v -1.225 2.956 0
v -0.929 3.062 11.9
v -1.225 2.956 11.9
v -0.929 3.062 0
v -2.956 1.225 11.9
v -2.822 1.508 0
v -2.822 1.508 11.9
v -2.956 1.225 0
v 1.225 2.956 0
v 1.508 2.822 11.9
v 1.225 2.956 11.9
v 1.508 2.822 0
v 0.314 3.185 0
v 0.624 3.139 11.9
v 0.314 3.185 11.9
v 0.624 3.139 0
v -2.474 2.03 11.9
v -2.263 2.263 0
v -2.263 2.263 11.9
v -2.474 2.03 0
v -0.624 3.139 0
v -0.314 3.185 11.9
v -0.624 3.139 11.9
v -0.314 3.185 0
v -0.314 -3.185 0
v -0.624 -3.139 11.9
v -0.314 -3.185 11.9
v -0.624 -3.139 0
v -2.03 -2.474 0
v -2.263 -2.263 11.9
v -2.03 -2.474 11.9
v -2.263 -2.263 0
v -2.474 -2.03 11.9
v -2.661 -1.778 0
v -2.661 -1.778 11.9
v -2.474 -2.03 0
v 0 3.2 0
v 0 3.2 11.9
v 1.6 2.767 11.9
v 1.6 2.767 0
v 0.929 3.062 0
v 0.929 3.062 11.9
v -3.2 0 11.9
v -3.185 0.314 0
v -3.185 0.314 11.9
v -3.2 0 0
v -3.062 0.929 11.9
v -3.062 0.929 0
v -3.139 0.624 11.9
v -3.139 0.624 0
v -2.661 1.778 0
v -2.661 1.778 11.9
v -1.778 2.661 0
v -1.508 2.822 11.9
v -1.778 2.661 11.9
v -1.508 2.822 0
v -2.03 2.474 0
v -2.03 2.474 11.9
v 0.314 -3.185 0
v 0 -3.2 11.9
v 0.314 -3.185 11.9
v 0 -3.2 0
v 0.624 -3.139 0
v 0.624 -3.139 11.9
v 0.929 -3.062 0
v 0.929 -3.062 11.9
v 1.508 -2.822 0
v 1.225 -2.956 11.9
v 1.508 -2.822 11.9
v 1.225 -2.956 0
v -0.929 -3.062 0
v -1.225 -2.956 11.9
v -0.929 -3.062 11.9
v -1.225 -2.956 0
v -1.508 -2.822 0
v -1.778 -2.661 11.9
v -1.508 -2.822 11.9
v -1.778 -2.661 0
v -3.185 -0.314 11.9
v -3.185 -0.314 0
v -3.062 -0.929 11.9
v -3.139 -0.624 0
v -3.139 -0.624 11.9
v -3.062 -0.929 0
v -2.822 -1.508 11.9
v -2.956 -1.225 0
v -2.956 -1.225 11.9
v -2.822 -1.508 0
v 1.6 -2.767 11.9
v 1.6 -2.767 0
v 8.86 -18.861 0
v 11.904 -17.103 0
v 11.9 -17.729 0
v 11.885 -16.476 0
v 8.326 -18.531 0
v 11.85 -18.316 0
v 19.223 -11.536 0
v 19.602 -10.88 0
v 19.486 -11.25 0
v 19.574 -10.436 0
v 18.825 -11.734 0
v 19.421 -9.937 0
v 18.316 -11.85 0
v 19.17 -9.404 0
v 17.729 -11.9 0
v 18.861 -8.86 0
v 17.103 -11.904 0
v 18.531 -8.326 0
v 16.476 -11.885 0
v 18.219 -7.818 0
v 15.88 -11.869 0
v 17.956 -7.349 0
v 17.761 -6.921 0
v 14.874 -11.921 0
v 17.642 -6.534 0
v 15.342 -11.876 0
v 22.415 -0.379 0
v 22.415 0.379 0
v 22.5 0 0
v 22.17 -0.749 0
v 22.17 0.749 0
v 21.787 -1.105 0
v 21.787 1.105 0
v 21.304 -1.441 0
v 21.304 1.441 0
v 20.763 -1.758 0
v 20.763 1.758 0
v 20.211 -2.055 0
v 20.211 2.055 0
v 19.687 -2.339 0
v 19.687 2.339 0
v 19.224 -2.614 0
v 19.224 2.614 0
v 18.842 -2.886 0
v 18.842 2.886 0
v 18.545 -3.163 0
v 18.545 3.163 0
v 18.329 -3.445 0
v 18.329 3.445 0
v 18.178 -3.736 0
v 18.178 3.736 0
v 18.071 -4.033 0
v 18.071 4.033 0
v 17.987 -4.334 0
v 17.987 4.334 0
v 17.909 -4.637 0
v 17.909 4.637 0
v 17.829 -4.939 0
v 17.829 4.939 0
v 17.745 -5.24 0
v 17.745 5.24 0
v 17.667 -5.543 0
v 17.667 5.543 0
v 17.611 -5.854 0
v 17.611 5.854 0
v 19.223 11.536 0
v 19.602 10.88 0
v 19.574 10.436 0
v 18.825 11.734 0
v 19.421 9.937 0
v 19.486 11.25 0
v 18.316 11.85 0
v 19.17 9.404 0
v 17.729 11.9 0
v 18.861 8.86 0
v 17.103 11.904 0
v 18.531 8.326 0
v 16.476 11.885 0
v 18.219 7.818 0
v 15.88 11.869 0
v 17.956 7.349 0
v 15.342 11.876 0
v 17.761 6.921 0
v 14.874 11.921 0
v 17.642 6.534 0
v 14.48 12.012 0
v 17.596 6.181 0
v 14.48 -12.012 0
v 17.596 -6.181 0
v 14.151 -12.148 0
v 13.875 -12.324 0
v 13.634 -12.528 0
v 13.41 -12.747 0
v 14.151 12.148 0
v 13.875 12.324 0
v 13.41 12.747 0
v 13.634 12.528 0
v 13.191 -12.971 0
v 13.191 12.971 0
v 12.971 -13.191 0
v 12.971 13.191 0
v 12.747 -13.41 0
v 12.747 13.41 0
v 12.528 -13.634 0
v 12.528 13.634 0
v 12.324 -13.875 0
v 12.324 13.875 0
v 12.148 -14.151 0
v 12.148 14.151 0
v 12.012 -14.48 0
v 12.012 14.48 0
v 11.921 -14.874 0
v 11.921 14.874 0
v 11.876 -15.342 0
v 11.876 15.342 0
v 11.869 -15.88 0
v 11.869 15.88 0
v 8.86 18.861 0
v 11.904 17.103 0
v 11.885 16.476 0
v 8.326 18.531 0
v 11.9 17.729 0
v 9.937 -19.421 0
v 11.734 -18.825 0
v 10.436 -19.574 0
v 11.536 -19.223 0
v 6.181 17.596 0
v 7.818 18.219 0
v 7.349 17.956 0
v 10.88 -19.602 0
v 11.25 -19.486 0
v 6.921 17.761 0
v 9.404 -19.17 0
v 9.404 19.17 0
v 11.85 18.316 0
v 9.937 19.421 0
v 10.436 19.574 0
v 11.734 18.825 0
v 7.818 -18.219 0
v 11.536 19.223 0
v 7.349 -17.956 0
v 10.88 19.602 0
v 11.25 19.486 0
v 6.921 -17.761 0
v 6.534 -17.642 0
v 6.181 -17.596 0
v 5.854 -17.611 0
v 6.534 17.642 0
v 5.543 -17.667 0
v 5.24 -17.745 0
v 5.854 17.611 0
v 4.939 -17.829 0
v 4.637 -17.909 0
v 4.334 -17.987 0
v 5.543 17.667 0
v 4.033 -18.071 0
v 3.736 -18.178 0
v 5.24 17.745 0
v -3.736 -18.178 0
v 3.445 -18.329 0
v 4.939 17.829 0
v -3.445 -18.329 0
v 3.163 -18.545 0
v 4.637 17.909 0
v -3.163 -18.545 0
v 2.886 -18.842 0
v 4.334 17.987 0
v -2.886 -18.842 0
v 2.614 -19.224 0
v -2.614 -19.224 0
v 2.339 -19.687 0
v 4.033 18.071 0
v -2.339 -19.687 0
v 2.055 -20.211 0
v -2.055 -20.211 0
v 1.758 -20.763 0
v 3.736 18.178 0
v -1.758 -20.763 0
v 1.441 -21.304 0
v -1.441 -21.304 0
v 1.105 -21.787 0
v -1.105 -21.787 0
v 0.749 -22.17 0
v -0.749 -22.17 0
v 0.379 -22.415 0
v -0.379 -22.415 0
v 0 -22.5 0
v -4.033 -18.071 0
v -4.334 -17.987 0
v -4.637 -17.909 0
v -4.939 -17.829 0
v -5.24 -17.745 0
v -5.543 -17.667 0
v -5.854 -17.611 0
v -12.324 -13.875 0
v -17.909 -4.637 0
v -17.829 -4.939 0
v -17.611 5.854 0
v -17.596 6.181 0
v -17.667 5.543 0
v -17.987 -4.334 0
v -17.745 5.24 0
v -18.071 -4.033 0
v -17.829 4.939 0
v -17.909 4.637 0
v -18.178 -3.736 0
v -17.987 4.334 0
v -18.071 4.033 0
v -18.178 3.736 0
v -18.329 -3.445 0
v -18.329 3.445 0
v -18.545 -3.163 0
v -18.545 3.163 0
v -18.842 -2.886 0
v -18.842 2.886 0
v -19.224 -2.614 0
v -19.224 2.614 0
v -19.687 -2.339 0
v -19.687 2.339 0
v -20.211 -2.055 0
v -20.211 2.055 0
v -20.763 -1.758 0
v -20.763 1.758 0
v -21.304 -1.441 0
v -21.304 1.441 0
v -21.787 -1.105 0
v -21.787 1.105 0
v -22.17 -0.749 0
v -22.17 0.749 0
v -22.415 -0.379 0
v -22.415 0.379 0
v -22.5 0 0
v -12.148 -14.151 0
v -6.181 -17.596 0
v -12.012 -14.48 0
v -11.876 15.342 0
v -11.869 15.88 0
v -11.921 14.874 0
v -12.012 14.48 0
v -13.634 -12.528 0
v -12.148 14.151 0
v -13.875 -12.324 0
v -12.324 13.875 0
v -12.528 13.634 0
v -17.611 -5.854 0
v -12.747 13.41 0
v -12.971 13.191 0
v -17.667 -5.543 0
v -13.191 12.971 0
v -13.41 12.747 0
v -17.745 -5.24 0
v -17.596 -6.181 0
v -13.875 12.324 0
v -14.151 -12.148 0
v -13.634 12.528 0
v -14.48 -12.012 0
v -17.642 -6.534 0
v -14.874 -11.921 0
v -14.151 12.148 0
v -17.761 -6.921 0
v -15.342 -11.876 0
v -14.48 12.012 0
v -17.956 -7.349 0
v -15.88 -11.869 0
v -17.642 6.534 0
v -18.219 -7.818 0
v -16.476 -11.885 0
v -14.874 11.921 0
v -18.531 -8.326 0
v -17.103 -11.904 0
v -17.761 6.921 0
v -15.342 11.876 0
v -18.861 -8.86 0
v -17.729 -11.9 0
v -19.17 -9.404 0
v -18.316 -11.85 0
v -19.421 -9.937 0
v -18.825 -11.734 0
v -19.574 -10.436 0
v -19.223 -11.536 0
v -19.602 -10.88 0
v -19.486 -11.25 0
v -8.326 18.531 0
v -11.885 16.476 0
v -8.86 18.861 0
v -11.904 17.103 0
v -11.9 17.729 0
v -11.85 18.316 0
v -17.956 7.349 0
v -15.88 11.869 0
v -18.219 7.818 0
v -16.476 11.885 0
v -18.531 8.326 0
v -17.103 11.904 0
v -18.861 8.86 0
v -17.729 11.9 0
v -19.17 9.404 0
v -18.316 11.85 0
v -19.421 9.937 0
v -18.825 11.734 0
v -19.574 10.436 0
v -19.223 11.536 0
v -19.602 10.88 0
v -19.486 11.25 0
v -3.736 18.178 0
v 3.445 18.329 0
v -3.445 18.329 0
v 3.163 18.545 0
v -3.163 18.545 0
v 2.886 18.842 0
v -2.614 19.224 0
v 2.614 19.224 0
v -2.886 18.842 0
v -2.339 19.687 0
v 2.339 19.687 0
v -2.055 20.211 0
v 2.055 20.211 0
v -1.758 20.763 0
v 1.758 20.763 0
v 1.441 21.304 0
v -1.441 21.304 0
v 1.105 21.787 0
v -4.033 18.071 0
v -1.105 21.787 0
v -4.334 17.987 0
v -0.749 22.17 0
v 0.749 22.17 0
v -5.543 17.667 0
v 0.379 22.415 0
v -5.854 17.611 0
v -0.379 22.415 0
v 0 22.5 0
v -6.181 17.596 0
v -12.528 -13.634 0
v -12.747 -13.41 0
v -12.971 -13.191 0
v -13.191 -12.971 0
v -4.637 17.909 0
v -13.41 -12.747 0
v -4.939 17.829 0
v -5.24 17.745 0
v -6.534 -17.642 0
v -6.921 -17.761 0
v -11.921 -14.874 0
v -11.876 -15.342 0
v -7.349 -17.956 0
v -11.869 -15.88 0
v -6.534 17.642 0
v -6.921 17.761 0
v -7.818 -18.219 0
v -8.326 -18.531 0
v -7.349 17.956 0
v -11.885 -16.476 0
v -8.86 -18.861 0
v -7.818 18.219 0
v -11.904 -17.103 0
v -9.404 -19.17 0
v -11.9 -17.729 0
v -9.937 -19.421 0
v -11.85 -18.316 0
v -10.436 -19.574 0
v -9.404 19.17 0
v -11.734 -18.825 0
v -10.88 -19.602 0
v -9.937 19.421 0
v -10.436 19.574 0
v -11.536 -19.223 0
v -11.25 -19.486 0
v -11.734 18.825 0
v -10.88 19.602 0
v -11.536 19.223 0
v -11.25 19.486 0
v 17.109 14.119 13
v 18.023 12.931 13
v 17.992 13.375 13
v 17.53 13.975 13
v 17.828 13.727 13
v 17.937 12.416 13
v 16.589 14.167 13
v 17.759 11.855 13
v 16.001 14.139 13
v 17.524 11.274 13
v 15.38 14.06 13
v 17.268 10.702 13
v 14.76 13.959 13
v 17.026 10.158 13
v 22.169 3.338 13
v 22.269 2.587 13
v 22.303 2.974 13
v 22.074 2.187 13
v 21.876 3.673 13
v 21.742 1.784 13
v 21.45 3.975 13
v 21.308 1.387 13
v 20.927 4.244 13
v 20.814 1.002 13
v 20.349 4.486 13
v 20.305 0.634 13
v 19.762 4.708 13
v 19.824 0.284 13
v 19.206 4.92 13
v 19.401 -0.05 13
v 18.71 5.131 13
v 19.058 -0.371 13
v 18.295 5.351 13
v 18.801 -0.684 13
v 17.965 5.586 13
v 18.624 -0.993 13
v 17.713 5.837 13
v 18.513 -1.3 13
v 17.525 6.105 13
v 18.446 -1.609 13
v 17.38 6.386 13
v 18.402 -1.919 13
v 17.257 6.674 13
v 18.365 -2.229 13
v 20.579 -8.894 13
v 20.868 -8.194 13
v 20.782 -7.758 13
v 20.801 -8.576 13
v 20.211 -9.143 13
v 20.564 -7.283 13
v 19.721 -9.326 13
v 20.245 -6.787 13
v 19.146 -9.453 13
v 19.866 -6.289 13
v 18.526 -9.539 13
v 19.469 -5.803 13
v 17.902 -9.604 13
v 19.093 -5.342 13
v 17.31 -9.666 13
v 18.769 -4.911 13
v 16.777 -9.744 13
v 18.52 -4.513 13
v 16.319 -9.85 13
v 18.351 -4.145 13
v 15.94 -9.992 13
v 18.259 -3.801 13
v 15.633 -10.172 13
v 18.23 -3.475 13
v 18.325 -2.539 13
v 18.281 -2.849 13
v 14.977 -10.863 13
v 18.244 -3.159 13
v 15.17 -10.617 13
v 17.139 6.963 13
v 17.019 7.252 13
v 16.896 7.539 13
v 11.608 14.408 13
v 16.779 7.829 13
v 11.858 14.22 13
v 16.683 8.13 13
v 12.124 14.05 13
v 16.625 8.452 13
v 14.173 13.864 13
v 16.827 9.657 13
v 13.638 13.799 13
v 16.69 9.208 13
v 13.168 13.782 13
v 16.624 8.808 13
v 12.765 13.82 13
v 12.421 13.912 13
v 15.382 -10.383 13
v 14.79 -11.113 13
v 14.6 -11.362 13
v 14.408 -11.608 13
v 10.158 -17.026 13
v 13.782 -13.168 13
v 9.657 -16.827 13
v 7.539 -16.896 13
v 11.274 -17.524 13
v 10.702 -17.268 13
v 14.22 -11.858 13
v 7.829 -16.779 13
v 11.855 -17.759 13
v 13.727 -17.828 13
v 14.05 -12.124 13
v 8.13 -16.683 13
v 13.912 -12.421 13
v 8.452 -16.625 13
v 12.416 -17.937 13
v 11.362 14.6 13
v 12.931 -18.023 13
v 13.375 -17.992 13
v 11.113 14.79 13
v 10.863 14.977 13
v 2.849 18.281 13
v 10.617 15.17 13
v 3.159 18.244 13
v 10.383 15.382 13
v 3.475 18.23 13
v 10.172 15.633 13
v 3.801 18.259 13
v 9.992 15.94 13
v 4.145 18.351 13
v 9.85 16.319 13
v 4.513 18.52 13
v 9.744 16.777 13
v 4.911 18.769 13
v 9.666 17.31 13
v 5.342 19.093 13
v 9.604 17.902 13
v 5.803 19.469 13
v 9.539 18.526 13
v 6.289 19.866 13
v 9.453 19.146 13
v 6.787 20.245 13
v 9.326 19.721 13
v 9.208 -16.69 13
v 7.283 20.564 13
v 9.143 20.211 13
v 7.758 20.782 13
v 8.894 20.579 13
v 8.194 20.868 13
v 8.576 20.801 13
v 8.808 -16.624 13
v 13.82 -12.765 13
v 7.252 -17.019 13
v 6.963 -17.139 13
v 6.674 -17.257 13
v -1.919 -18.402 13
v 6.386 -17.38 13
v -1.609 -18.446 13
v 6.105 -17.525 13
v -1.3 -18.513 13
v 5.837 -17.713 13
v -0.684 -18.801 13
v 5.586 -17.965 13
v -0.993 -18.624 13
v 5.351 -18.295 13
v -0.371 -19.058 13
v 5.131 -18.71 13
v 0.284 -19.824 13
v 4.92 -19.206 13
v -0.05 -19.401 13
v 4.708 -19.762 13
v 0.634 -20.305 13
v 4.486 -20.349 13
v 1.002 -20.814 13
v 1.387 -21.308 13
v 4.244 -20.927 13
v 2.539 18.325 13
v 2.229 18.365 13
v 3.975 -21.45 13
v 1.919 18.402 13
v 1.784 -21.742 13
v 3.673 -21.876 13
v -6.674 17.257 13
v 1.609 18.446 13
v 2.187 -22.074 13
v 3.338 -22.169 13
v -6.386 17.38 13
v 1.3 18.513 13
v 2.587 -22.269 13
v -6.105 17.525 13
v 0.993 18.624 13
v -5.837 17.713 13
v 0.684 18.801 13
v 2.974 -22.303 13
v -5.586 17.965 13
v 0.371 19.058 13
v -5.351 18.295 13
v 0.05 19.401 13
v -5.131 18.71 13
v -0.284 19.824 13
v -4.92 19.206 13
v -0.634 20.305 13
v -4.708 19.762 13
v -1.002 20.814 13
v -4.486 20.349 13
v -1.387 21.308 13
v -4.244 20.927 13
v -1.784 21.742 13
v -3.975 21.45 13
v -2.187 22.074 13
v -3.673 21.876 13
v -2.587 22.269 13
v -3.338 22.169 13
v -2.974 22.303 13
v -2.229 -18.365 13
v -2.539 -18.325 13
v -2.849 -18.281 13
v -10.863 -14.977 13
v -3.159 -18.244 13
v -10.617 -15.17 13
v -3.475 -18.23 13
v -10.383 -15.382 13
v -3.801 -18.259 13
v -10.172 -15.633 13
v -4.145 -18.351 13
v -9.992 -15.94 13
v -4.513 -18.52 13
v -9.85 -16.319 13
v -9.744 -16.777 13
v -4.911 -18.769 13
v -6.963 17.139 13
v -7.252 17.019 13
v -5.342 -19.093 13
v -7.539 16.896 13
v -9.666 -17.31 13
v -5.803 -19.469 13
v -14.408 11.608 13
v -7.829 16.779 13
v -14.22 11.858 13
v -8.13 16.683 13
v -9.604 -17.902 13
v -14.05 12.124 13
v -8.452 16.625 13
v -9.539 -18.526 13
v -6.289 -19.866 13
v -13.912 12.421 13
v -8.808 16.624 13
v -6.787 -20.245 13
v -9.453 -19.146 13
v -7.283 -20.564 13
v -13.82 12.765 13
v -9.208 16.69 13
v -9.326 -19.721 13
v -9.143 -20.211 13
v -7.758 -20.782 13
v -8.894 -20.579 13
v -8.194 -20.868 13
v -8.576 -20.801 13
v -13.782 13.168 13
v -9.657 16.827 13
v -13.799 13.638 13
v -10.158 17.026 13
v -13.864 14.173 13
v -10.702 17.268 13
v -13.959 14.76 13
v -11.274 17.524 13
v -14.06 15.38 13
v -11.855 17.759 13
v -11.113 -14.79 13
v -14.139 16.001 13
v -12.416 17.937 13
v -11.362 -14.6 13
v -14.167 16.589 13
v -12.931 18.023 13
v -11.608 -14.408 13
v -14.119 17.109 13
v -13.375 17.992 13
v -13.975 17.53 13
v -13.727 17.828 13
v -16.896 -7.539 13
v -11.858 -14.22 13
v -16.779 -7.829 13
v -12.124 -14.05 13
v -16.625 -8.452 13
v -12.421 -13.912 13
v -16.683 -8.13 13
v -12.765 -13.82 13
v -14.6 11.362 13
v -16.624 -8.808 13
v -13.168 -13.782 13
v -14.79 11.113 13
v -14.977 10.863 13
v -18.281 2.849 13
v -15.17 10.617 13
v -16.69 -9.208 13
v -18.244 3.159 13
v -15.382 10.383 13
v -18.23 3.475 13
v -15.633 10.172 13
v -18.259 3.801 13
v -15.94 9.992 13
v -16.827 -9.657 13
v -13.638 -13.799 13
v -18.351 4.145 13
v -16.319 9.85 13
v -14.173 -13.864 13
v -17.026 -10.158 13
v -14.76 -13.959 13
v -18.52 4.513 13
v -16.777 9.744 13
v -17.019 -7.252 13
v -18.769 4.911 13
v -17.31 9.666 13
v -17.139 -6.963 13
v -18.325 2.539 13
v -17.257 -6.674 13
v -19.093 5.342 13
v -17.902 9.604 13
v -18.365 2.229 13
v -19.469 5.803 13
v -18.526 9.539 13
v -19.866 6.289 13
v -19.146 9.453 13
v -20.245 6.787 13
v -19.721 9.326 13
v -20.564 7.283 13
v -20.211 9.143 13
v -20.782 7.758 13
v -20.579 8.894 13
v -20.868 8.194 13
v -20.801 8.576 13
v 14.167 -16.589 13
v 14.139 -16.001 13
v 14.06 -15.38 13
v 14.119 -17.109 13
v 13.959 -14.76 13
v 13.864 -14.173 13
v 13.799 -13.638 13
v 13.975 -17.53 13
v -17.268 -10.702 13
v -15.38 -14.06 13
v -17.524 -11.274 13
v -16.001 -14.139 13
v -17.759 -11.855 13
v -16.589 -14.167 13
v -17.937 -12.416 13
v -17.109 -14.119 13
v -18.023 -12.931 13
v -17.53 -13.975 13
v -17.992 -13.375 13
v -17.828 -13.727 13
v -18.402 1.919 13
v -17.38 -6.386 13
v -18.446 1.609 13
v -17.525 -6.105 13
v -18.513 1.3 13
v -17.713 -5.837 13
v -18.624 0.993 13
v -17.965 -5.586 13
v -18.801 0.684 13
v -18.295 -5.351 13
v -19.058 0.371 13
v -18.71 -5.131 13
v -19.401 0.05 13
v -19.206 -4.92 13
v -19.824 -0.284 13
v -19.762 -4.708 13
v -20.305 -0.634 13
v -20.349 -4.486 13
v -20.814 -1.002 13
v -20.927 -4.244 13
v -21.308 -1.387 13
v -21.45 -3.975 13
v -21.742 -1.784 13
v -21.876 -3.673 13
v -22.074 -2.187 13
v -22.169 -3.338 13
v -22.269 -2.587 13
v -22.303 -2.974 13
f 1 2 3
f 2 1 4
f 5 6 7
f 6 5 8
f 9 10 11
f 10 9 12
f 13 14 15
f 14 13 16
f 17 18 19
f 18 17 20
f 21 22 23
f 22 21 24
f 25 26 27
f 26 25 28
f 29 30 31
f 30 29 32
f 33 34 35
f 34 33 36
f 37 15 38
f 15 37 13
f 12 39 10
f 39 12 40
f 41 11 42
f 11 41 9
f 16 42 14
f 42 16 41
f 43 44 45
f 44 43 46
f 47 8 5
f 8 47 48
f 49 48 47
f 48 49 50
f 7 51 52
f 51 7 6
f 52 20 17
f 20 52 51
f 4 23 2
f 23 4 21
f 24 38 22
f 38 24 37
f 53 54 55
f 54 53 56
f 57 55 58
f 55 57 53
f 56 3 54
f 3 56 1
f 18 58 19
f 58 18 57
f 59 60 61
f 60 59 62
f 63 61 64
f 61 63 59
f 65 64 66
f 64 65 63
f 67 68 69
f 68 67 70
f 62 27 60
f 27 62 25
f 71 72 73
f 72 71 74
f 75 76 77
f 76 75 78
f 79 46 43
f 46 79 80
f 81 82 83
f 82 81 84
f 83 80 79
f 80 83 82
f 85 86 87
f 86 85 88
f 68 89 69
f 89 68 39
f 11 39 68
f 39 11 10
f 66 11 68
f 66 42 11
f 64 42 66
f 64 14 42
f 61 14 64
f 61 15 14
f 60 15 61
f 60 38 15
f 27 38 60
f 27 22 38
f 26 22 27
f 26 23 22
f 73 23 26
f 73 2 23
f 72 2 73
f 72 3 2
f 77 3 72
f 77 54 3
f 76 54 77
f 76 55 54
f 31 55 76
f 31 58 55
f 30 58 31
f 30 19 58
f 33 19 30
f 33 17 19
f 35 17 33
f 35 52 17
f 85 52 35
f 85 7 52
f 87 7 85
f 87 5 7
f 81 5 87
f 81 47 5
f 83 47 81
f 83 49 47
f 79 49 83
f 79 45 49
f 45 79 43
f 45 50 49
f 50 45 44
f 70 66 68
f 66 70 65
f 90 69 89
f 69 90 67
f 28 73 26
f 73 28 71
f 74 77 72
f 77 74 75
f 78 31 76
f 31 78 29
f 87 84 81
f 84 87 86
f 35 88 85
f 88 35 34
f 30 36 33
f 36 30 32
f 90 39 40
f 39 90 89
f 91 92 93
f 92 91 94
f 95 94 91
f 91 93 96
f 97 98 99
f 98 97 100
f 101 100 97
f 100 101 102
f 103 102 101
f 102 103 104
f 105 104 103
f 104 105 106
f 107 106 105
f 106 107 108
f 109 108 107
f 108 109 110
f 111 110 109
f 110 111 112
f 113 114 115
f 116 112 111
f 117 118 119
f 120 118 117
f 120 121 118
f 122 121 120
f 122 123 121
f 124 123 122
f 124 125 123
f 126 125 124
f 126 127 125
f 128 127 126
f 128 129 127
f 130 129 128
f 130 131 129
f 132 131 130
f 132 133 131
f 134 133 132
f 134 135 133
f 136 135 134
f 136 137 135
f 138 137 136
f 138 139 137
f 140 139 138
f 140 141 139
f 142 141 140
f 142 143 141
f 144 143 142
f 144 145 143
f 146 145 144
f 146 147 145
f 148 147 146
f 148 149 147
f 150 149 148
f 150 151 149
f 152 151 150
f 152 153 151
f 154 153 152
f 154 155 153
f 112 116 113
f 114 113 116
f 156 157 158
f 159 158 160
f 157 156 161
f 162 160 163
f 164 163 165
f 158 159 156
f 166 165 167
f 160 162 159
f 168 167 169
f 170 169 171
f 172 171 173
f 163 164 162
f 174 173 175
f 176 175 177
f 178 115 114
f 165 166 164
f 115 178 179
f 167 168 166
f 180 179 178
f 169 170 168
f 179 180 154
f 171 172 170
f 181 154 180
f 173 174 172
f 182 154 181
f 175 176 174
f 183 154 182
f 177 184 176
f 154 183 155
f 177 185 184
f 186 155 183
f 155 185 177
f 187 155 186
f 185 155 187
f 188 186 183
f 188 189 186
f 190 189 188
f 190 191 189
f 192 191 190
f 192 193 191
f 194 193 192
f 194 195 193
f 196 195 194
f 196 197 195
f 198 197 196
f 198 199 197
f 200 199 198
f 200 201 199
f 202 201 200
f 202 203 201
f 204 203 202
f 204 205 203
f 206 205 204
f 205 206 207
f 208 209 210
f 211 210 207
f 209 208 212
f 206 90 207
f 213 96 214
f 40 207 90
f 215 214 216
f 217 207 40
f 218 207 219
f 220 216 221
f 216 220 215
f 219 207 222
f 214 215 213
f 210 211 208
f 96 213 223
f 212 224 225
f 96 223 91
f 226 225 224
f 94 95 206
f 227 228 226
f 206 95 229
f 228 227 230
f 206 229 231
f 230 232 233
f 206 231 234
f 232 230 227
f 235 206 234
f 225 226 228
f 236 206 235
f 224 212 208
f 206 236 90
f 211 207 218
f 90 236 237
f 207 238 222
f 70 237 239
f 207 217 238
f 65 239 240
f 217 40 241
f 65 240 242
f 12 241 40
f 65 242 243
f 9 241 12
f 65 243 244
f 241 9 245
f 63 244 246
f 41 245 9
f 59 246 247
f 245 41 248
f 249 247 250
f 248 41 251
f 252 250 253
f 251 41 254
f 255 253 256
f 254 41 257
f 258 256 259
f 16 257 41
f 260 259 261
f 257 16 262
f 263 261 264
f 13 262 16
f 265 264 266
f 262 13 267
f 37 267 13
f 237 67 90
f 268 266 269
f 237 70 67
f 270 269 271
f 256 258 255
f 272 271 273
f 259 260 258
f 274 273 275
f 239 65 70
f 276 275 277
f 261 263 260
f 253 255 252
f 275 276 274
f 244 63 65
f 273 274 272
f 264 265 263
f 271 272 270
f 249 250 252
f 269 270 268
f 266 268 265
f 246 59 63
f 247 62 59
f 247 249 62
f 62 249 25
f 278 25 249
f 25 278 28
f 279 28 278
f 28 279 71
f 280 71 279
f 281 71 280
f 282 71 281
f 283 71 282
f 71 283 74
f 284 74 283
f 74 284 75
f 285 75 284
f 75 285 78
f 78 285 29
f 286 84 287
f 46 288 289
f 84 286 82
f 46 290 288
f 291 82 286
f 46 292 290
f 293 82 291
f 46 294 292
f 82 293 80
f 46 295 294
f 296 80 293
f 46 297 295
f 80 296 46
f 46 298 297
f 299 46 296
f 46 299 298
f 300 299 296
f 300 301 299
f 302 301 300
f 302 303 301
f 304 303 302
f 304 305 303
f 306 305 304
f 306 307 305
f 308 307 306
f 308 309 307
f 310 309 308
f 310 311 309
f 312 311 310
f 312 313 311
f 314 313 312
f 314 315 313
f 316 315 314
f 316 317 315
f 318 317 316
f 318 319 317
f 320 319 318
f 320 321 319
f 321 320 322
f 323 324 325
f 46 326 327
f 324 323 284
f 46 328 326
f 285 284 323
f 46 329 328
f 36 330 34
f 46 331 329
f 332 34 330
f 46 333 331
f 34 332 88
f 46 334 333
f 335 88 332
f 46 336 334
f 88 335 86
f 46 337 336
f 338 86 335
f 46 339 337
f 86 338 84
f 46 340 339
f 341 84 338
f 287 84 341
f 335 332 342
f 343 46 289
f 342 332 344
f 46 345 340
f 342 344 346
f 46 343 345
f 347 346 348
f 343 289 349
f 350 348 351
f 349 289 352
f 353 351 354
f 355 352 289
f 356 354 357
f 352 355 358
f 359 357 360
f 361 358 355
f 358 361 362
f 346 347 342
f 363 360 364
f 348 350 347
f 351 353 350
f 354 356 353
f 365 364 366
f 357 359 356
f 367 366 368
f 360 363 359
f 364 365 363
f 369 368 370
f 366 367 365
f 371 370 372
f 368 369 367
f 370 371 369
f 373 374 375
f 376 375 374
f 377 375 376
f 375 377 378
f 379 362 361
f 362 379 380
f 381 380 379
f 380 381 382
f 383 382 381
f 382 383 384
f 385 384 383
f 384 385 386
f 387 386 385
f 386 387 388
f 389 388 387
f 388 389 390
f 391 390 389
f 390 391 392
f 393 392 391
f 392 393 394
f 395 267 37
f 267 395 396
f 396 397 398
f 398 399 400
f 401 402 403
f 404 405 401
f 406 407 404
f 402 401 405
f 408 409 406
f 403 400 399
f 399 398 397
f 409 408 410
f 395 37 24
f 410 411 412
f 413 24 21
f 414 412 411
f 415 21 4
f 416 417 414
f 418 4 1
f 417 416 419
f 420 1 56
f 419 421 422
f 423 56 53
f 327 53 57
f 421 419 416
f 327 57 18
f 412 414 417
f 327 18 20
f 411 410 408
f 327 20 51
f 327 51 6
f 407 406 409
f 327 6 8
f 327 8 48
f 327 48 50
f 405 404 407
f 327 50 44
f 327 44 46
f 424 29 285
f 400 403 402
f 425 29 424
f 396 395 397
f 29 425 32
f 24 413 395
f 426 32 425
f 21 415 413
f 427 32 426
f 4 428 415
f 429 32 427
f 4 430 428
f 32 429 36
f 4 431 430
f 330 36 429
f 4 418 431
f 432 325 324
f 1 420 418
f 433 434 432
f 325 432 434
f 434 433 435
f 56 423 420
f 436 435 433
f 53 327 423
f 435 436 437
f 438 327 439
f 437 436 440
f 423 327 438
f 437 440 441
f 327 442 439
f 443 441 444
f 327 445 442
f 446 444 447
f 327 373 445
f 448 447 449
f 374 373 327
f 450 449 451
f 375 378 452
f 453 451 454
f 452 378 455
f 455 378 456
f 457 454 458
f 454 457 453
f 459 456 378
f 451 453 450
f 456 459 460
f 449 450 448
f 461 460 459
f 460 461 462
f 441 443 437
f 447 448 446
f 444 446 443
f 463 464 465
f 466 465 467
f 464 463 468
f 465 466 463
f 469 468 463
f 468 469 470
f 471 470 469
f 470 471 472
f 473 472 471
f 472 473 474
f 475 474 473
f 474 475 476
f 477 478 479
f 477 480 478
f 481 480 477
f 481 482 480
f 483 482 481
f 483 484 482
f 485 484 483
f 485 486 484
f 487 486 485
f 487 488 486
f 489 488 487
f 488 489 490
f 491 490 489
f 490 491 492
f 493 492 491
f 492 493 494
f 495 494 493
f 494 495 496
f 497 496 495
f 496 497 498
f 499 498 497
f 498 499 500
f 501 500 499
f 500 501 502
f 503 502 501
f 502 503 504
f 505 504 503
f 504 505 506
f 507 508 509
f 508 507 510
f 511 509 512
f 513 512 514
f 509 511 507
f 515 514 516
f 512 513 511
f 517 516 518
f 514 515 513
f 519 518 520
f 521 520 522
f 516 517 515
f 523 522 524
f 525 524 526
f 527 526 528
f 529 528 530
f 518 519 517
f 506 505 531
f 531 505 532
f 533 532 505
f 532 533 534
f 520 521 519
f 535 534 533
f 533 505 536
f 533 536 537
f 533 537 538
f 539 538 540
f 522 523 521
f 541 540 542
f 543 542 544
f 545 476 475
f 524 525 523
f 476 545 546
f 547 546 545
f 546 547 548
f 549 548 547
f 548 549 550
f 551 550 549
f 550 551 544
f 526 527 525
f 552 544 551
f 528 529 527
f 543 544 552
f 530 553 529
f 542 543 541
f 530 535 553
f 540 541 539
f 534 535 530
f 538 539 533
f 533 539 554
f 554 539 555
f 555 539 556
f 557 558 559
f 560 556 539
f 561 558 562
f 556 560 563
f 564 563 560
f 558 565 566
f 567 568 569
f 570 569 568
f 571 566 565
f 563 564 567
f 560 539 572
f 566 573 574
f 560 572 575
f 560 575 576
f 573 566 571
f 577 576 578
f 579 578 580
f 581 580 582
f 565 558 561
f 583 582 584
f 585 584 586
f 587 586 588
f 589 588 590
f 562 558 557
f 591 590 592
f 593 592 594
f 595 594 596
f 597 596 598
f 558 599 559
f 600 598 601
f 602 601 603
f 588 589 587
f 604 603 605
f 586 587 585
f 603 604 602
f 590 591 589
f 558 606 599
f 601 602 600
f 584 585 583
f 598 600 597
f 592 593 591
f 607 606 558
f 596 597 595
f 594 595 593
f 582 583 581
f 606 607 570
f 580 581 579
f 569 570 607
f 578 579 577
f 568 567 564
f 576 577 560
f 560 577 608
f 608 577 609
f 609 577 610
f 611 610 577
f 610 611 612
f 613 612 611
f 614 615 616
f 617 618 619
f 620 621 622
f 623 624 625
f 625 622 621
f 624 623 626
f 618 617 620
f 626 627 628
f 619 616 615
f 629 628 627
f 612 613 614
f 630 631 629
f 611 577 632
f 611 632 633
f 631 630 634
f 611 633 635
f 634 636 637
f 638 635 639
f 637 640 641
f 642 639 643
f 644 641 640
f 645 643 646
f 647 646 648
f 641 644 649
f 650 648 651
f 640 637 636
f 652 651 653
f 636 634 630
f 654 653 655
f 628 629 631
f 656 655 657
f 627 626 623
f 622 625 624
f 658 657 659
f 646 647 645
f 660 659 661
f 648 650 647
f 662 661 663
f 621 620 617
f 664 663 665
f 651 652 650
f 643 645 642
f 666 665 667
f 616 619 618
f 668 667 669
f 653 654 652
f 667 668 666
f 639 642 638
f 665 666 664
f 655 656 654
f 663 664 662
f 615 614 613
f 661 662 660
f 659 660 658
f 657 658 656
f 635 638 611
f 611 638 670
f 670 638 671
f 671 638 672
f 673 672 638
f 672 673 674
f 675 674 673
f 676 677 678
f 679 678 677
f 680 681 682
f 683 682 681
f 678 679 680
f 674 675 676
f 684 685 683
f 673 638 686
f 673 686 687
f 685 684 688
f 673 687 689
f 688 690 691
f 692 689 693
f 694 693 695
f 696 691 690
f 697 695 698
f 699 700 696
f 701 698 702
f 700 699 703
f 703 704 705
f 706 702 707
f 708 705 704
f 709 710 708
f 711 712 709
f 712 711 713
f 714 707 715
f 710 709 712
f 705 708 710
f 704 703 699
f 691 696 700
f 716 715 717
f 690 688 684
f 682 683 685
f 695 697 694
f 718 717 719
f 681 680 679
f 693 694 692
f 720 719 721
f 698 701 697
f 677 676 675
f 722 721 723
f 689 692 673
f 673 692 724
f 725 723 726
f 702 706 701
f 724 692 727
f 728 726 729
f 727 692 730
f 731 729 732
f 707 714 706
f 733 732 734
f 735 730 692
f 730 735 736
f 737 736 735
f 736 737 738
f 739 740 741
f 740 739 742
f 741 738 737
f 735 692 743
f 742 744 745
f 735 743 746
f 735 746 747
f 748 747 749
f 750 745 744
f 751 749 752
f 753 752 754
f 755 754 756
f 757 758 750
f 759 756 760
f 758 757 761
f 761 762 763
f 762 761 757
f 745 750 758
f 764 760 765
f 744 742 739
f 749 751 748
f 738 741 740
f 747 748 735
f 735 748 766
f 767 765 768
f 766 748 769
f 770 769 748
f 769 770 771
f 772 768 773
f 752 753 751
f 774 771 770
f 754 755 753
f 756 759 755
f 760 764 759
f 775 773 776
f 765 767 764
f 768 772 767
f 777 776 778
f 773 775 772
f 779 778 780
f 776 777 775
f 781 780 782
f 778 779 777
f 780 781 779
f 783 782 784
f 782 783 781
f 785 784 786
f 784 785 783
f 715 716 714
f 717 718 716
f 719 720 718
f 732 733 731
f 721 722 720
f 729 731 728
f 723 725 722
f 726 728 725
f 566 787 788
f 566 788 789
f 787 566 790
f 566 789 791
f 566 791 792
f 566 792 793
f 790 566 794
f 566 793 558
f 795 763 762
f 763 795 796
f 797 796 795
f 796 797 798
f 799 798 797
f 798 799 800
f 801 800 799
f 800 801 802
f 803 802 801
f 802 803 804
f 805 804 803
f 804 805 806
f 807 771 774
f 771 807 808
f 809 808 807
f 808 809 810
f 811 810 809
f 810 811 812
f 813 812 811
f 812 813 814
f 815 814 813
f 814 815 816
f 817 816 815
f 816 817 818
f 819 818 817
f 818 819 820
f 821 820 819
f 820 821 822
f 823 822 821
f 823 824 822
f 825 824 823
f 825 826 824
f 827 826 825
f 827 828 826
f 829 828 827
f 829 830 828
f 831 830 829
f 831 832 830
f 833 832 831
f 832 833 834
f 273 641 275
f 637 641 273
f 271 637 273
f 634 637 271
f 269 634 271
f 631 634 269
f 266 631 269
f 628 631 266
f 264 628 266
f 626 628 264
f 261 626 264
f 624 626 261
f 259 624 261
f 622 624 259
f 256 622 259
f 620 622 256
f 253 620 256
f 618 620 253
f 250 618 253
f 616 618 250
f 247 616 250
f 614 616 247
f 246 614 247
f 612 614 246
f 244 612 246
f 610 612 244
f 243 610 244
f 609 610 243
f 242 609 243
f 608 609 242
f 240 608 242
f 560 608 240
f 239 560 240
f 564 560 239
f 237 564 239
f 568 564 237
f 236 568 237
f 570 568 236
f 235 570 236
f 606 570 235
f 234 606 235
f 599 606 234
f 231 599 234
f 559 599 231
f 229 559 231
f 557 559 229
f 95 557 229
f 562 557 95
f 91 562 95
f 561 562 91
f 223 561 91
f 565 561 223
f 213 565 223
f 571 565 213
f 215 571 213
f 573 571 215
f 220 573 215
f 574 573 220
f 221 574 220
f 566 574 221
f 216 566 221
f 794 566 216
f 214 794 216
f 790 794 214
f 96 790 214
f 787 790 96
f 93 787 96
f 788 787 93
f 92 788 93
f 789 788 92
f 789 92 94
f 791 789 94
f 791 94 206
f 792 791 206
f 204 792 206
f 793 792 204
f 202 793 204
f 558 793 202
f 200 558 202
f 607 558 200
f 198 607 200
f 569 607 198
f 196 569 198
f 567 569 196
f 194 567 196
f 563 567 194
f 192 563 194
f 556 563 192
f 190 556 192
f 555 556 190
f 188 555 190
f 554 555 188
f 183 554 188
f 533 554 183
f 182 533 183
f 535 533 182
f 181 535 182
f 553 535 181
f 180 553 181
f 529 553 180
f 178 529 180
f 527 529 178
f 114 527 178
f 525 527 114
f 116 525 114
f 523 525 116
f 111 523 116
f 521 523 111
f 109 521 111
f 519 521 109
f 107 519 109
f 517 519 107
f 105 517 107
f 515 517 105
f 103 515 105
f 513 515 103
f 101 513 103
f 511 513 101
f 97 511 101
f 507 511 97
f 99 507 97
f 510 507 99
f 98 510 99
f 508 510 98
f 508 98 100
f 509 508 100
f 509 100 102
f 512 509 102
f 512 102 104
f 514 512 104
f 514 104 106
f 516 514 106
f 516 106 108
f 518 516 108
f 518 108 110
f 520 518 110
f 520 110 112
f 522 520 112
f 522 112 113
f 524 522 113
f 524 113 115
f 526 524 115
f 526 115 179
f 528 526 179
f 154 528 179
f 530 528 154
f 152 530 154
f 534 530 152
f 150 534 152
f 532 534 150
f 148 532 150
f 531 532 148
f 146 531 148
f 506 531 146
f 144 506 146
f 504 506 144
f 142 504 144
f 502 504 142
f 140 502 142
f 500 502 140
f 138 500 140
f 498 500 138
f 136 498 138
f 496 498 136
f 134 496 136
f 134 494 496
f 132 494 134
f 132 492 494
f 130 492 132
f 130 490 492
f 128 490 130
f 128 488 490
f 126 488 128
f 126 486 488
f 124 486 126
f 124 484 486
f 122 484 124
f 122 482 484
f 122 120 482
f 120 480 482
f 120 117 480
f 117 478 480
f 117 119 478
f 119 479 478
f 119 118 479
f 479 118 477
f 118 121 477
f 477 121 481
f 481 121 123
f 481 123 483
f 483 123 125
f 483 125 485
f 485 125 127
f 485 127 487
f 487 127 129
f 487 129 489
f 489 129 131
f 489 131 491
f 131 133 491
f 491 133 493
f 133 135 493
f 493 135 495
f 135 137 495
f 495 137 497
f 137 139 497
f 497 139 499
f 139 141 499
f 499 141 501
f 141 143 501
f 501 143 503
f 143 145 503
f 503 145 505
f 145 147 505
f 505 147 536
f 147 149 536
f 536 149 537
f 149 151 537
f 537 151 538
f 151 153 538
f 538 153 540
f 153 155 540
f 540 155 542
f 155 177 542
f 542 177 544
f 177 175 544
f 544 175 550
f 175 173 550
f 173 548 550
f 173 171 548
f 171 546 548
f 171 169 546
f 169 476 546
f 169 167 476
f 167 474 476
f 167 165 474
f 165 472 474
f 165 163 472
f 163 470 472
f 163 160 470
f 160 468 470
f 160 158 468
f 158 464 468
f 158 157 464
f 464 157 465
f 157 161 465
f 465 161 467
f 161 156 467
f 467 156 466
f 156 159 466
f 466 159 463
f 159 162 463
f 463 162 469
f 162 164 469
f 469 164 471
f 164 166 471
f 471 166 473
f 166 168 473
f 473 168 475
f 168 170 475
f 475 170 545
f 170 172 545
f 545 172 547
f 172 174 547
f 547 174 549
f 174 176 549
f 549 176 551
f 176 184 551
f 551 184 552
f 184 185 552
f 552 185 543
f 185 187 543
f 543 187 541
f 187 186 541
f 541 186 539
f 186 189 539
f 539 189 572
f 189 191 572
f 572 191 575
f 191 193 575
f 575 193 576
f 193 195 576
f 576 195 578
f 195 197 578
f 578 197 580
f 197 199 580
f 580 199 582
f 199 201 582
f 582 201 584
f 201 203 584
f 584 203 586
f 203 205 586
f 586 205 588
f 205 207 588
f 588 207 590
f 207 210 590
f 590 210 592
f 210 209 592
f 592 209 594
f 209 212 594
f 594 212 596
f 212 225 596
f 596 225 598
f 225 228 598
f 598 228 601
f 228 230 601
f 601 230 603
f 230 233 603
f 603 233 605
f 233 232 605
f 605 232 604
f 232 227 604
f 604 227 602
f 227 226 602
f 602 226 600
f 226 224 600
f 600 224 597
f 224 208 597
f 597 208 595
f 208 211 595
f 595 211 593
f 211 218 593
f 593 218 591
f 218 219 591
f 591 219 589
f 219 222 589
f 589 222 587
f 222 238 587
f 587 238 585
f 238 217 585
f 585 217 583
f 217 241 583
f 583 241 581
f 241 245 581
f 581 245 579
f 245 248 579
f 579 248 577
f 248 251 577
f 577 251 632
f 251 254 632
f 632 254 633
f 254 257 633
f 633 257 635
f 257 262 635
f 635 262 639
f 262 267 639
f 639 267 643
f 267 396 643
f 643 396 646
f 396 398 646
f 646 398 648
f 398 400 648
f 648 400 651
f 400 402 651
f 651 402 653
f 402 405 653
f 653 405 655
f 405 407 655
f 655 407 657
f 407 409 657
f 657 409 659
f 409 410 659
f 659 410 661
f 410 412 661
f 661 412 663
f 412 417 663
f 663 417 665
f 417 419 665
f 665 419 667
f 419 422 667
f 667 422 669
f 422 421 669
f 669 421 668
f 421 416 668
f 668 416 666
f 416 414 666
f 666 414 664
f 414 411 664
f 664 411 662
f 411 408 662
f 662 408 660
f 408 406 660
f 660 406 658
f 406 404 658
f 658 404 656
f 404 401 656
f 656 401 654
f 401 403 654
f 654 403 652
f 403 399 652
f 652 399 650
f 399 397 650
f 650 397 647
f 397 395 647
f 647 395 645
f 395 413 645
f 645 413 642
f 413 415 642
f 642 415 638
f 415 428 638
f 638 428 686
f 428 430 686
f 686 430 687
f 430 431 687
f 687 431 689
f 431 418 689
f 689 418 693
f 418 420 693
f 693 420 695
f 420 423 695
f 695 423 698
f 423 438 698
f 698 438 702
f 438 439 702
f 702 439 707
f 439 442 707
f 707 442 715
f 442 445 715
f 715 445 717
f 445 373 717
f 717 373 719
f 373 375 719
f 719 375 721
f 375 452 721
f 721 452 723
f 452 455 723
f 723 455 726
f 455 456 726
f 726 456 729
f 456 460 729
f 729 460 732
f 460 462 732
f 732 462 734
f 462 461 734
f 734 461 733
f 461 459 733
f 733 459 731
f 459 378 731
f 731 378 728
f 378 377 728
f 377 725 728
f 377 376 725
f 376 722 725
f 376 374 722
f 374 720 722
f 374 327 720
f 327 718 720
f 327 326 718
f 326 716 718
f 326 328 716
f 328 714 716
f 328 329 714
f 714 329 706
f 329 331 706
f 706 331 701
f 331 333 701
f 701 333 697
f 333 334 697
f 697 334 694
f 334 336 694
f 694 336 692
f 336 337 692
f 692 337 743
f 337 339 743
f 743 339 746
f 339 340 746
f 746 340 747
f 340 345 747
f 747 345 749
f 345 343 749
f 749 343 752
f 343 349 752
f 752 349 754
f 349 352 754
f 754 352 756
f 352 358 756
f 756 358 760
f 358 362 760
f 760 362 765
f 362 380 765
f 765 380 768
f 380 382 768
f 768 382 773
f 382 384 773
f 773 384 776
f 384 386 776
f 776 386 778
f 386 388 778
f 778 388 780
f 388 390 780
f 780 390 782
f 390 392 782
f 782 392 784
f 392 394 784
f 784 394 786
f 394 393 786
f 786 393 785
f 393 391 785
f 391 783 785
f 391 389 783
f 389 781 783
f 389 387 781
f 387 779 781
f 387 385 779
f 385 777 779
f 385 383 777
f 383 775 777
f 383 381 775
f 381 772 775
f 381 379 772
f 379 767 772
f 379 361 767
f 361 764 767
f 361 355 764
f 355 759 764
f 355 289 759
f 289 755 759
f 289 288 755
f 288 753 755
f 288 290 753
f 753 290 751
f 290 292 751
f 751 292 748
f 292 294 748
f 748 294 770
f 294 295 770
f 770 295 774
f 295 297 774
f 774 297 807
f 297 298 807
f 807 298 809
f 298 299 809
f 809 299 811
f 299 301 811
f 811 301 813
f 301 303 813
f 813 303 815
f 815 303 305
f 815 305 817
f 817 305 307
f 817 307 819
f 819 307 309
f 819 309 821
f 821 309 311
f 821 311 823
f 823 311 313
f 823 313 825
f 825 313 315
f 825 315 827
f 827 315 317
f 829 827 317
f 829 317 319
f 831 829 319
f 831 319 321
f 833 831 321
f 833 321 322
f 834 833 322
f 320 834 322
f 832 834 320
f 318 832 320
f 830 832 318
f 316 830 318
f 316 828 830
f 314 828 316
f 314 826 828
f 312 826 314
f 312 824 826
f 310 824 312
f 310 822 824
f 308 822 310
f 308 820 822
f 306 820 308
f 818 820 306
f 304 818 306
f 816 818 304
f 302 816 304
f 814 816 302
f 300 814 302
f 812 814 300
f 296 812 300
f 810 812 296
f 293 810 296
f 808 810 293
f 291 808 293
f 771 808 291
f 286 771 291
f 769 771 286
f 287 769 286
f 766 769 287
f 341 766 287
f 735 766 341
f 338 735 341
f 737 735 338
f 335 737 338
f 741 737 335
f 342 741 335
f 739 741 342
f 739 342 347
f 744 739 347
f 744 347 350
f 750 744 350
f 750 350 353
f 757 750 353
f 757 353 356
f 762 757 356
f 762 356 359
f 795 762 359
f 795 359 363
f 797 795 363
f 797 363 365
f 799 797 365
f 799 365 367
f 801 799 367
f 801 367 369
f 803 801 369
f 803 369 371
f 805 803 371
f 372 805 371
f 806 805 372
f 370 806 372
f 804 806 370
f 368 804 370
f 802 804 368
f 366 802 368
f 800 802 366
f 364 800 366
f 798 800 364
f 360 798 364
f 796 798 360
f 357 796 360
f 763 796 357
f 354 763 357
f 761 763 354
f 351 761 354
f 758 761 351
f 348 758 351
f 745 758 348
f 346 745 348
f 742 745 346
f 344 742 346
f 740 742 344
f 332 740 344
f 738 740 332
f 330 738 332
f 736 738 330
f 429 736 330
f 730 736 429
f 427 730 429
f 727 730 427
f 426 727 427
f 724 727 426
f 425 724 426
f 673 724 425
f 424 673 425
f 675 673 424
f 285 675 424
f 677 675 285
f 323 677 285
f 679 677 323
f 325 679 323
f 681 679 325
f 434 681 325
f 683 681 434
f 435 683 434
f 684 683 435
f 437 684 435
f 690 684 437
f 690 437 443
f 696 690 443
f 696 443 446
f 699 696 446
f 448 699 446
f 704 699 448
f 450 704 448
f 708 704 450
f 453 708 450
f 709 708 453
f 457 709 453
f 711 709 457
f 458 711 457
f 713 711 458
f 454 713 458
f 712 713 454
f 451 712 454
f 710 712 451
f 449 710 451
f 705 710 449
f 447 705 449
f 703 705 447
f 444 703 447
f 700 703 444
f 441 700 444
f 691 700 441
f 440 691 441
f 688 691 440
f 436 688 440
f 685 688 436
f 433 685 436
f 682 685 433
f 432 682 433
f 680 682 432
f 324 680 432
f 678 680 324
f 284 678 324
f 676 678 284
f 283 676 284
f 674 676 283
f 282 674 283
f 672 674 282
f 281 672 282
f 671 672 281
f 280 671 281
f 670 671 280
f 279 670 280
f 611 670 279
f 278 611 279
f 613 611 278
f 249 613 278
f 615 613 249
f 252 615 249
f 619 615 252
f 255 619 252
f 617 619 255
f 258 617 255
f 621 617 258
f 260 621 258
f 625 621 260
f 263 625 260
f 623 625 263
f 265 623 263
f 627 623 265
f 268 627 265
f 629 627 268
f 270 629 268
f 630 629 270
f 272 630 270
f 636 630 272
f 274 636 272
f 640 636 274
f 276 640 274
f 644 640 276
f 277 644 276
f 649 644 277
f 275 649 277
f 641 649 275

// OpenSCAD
// Generated by SolidPython 1.1.3 on 2025-03-09 02:48:33
$fn = 64;


difference() {
	linear_extrude(height = 13, slices = 1, twist = -7.594643368591445) {
		polygon(points = [[22.5, 0.0], [22.415341065327294, 0.378637462806787], [22.169743822900962, 0.7491914939374684], [21.787179882375174, 1.104920710189909], [21.303895724438366, 1.441509245485037], [20.763467316603133, 1.7576848191183598], [20.211000561583514, 2.055257876010524], [19.687376909516843, 2.3385846228618474], [19.224421894018707, 2.613573046688757], [18.841710342190282, 2.8864438558941576], [18.545443606454974, 3.162508801932647], [18.329488271805218, 3.4452262454452365], [18.17831024735917, 3.735737721122576], [18.07123202182097, 4.032989845661785], [17.98723455715507, 4.334422233481712], [17.909452182534345, 4.6370784449241], [17.82857978039945, 4.93889835862166], [17.74461318706648, 5.2398975136542845], [17.666640931410672, 5.542944351362693], [17.610747332649314, 5.853911355311648], [17.596415604474863, 6.18109068556215], [17.64207968860803, 6.533908841061924], [17.76062173503185, 6.92112146529329], [17.955624256634334, 7.3487902939305965], [18.21906084895168, 7.81841476246041], [18.530868860238144, 8.325594748838594], [18.860532576385403, 8.859533953098808], [19.170469519680832, 9.403564235839001], [19.420711610053115, 9.936700536995582], [19.574157092994106, 10.436053045401417], [19.601573528469373, 10.87976087104848], [19.48557158514987, 11.249999999999998], [19.48557158514987, 11.249999999999998], [19.222936065662584, 11.535580194278808], [18.82496559905664, 11.733690777499543], [18.315790899863206, 11.85047934537959], [17.728960274195796, 11.900331488599361], [17.102847757267043, 11.903933363504324], [16.475610984227618, 11.885405812744919], [15.880476226089835, 11.868962147056433], [15.342051209945577, 11.87563160008811], [14.874177879137696, 11.920588876896991], [14.479570886675385, 12.011534765393048], [14.151189359029628, 12.148397586243064], [13.875009611526737, 12.324398892047526], [13.63365108574889, 12.52828767045827], [13.41019095358477, 12.747337043500782], [13.191501335475353, 12.970553823912683], [12.970553823912685, 13.191501335475351], [12.747337043500783, 13.410190953584767], [12.528287670458274, 13.633651085748886], [12.324398892047528, 13.875009611526735], [12.148397586243068, 14.151189359029626], [12.011534765393051, 14.47957088667538], [11.920588876896993, 14.874177879137694], [11.875631600088111, 15.342051209945573], [11.868962147056434, 15.880476226089833], [11.88540581274492, 16.475610984227615], [11.903933363504324, 17.10284775726704], [11.900331488599365, 17.728960274195796], [11.850479345379593, 18.315790899863202], [11.733690777499548, 18.824965599056636], [11.535580194278811, 19.222936065662584], [11.250000000000002, 19.48557158514987], [11.250000000000002, 19.48557158514987], [10.879760871048488, 19.60157352846937], [10.43605304540142, 19.574157092994106], [9.936700536995586, 19.42071161005311], [9.403564235839006, 19.17046951968083], [8.859533953098817, 18.8605325763854], [8.325594748838599, 18.53086886023814], [7.8184147624604154, 18.21906084895168], [7.348790293930602, 17.95562425663433], [6.921121465293298, 17.76062173503185], [6.533908841061925, 17.642079688608028], [6.181090685562152, 17.596415604474863], [5.85391135531165, 17.610747332649314], [5.542944351362695, 17.666640931410672], [5.239897513654286, 17.74461318706648], [4.938898358621664, 17.82857978039945], [4.637078444924105, 17.909452182534345], [4.334422233481715, 17.987234557155066], [4.032989845661789, 18.071232021820965], [3.7357377211225815, 18.17831024735917], [3.4452262454452427, 18.329488271805214], [3.1625088019326504, 18.545443606454974], [2.886443855894159, 18.841710342190282], [2.6135730466887592, 19.224421894018707], [2.338584622861847, 19.687376909516843], [2.055257876010525, 20.211000561583514], [1.7576848191183623, 20.76346731660313], [1.4415092454850411, 21.303895724438366], [1.1049207101899103, 21.787179882375174], [0.7491914939374713, 22.169743822900962], [0.3786374628067917, 22.415341065327294], [1.3777276490407724e-15, 22.5], [1.3777276490407724e-15, 22.5], [-0.378637462806784, 22.415341065327294], [-0.7491914939374636, 22.169743822900962], [-1.1049207101899028, 21.787179882375177], [-1.4415092454850336, 21.303895724438366], [-1.7576848191183552, 20.763467316603133], [-2.055257876010518, 20.211000561583514], [-2.3385846228618403, 19.687376909516846], [-2.6135730466887526, 19.224421894018707], [-2.8864438558941528, 18.841710342190286], [-3.162508801932644, 18.545443606454974], [-3.4452262454452365, 18.329488271805218], [-3.7357377211225753, 18.17831024735917], [-4.032989845661782, 18.07123202182097], [-4.334422233481709, 17.98723455715507], [-4.637078444924099, 17.909452182534345], [-4.938898358621658, 17.828579780399455], [-5.23989751365428, 17.744613187066484], [-5.542944351362689, 17.666640931410676], [-5.853911355311644, 17.610747332649314], [-6.181090685562148, 17.596415604474867], [-6.533908841061919, 17.64207968860803], [-6.921121465293291, 17.76062173503185], [-7.3487902939305965, 17.955624256634334], [-7.818414762460408, 18.219060848951685], [-8.325594748838592, 18.530868860238144], [-8.859533953098804, 18.860532576385403], [-9.403564235838996, 19.170469519680832], [-9.936700536995582, 19.420711610053115], [-10.436053045401417, 19.57415709299411], [-10.87976087104848, 19.601573528469373], [-11.249999999999995, 19.48557158514987], [-11.249999999999995, 19.48557158514987], [-11.535580194278804, 19.222936065662587], [-11.733690777499538, 18.824965599056643], [-11.850479345379583, 18.31579089986321], [-11.900331488599361, 17.728960274195796], [-11.903933363504319, 17.102847757267046], [-11.885405812744917, 16.47561098422762], [-11.868962147056427, 15.88047622608984], [-11.875631600088104, 15.34205120994558], [-11.920588876896984, 14.874177879137699], [-12.011534765393042, 14.479570886675388], [-12.148397586243055, 14.151189359029635], [-12.324398892047522, 13.87500961152674], [-12.528287670458266, 13.633651085748891], [-12.747337043500774, 13.410190953584774], [-12.970553823912683, 13.191501335475351], [-13.191501335475344, 12.97055382391269], [-13.410190953584765, 12.747337043500785], [-13.633651085748879, 12.528287670458283], [-13.875009611526737, 12.324398892047524], [-14.151189359029628, 12.148397586243066], [-14.479570886675383, 12.01153476539305], [-14.874177879137694, 11.920588876896995], [-15.342051209945572, 11.875631600088113], [-15.880476226089831, 11.868962147056438], [-16.475610984227615, 11.885405812744926], [-17.10284775726704, 11.903933363504322], [-17.728960274195792, 11.900331488599365], [-18.315790899863202, 11.850479345379595], [-18.824965599056636, 11.733690777499548], [-19.22293606566258, 11.535580194278817], [-19.485571585149867, 11.250000000000007], [-19.485571585149867, 11.250000000000007], [-19.601573528469366, 10.879760871048493], [-19.574157092994106, 10.43605304540142], [-19.42071161005311, 9.936700536995586], [-19.17046951968083, 9.403564235839008], [-18.8605325763854, 8.859533953098817], [-18.53086886023814, 8.325594748838604], [-18.219060848951678, 7.818414762460421], [-17.95562425663433, 7.348790293930607], [-17.760621735031847, 6.921121465293302], [-17.642079688608028, 6.533908841061931], [-17.596415604474863, 6.1810906855621575], [-17.610747332649314, 5.853911355311656], [-17.66664093141067, 5.542944351362704], [-17.744613187066477, 5.239897513654295], [-17.82857978039945, 4.938898358621665], [-17.90945218253434, 4.637078444924114], [-17.98723455715507, 4.334422233481711], [-18.071232021820965, 4.032989845661794], [-18.17831024735917, 3.735737721122579], [-18.329488271805214, 3.4452262454452396], [-18.545443606454974, 3.1625088019326513], [-18.841710342190282, 2.8864438558941643], [-19.224421894018707, 2.6135730466887646], [-19.687376909516843, 2.3385846228618483], [-20.211000561583514, 2.0552578760105265], [-20.76346731660313, 1.7576848191183636], [-21.303895724438366, 1.4415092454850424], [-21.787179882375174, 1.1049207101899163], [-22.169743822900962, 0.7491914939374776], [-22.415341065327294, 0.37863746280679805], [-22.5, 2.7554552980815448e-15], [-22.5, 2.7554552980815448e-15], [-22.415341065327294, -0.3786374628067826], [-22.169743822900962, -0.7491914939374622], [-21.787179882375177, -1.1049207101899015], [-21.303895724438366, -1.4415092454850278], [-20.763467316603133, -1.7576848191183494], [-20.211000561583514, -2.0552578760105122], [-19.687376909516846, -2.338584622861835], [-19.224421894018707, -2.6135730466887517], [-18.841710342190286, -2.886443855894151], [-18.545443606454974, -3.162508801932639], [-18.329488271805218, -3.445226245445227], [-18.178310247359175, -3.735737721122566], [-18.07123202182097, -4.032989845661773], [-17.98723455715507, -4.334422233481699], [-17.909452182534345, -4.637078444924102], [-17.828579780399455, -4.938898358621652], [-17.74461318706648, -5.239897513654283], [-17.666640931410676, -5.542944351362684], [-17.610747332649318, -5.853911355311643], [-17.596415604474867, -6.181090685562145], [-17.64207968860803, -6.533908841061918], [-17.760621735031854, -6.92112146529329], [-17.955624256634334, -7.348790293930596], [-18.219060848951685, -7.8184147624604075], [-18.530868860238144, -8.32559474883859], [-18.860532576385406, -8.859533953098802], [-19.170469519680832, -9.403564235838994], [-19.420711610053118, -9.936700536995573], [-19.574157092994113, -10.436053045401408], [-19.601573528469373, -10.879760871048479], [-19.485571585149874, -11.249999999999993], [-19.485571585149874, -11.249999999999993], [-19.222936065662587, -11.5355801942788], [-18.824965599056643, -11.733690777499536], [-18.31579089986321, -11.850479345379583], [-17.728960274195803, -11.900331488599353], [-17.102847757267053, -11.903933363504311], [-16.47561098422762, -11.885405812744914], [-15.88047622608984, -11.868962147056427], [-15.34205120994558, -11.875631600088102], [-14.8741778791377, -11.920588876896984], [-14.479570886675388, -12.011534765393039], [-14.151189359029635, -12.148397586243055], [-13.875009611526748, -12.324398892047514], [-13.633651085748893, -12.528287670458266], [-13.410190953584774, -12.747337043500774], [-13.191501335475353, -12.970553823912683], [-12.970553823912693, -13.191501335475342], [-12.747337043500785, -13.410190953584765], [-12.528287670458283, -13.633651085748879], [-12.32439889204753, -13.875009611526734], [-12.148397586243073, -14.151189359029622], [-12.011534765393058, -14.479570886675376], [-11.920588876897002, -14.874177879137687], [-11.875631600088122, -15.342051209945566], [-11.868962147056433, -15.880476226089836], [-11.885405812744919, -16.475610984227618], [-11.903933363504322, -17.10284775726704], [-11.900331488599367, -17.728960274195792], [-11.850479345379595, -18.315790899863202], [-11.73369077749955, -18.824965599056636], [-11.535580194278817, -19.22293606566258], [-11.25000000000001, -19.485571585149867], [-11.25000000000001, -19.485571585149867], [-10.879760871048475, -19.601573528469377], [-10.436053045401431, -19.5741570929941], [-9.936700536995579, -19.420711610053115], [-9.403564235839017, -19.170469519680825], [-8.859533953098811, -18.860532576385403], [-8.325594748838613, -18.530868860238133], [-7.818414762460413, -18.21906084895168], [-7.348790293930601, -17.95562425663433], [-6.921121465293296, -17.76062173503185], [-6.5339088410619315, -17.642079688608025], [-6.181090685562158, -17.596415604474863], [-5.853911355311657, -17.61074733264931], [-5.542944351362705, -17.66664093141067], [-5.239897513654296, -17.744613187066477], [-4.938898358621658, -17.828579780399455], [-4.637078444924115, -17.90945218253434], [-4.334422233481713, -17.98723455715507], [-4.0329898456618025, -18.071232021820965], [-3.73573772112258, -18.17831024735917], [-3.4452262454452574, -18.329488271805214], [-3.1625088019326526, -18.545443606454974], [-2.886443855894182, -18.84171034219028], [-2.613573046688766, -19.224421894018707], [-2.338584622861858, -19.687376909516843], [-2.0552578760105362, -20.211000561583514], [-1.757684819118374, -20.763467316603126], [-1.441509245485053, -21.303895724438366], [-1.1049207101899274, -21.787179882375174], [-0.7491914939374887, -22.169743822900962], [-0.37863746280678945, -22.415341065327294], [-4.133182947122317e-15, -22.5], [-4.133182947122317e-15, -22.5], [0.3786374628067812, -22.415341065327294], [0.7491914939374609, -22.169743822900962], [1.1049207101899001, -21.787179882375177], [1.4415092454850265, -21.303895724438366], [1.7576848191183483, -20.763467316603133], [2.055257876010511, -20.211000561583518], [2.338584622861851, -19.687376909516843], [2.613573046688742, -19.224421894018707], [2.8864438558941585, -18.841710342190282], [3.1625088019326295, -18.545443606454977], [3.4452262454452343, -18.329488271805218], [3.7357377211225575, -18.178310247359178], [4.03298984566178, -18.07123202182097], [4.334422233481706, -17.98723455715507], [4.637078444924093, -17.909452182534345], [4.9388983586216515, -17.828579780399455], [5.239897513654274, -17.744613187066484], [5.542944351362682, -17.666640931410676], [5.853911355311634, -17.610747332649318], [6.181090685562137, -17.596415604474867], [6.533908841061925, -17.642079688608028], [6.9211214652932735, -17.76062173503186], [7.348790293930594, -17.955624256634334], [7.818414762460391, -18.219060848951692], [8.32559474883859, -18.530868860238144], [8.859533953098785, -18.86053257638541], [9.403564235838994, -19.170469519680836], [9.936700536995572, -19.420711610053118], [10.436053045401406, -19.574157092994113], [10.879760871048486, -19.60157352846937], [11.249999999999986, -19.485571585149877], [11.249999999999986, -19.485571585149877], [11.535580194278808, -19.222936065662584], [11.733690777499525, -18.82496559905665], [11.850479345379588, -18.315790899863206], [11.90033148859936, -17.728960274195796], [11.903933363504319, -17.102847757267046], [11.885405812744914, -16.47561098422762], [11.868962147056425, -15.88047622608984], [11.875631600088102, -15.34205120994558], [11.920588876896982, -14.8741778791377], [12.011534765393039, -14.47957088667539], [12.148397586243066, -14.151189359029624], [12.324398892047514, -13.875009611526748], [12.528287670458273, -13.63365108574889], [12.74733704350077, -13.410190953584781], [12.970553823912681, -13.191501335475353], [13.191501335475337, -12.970553823912699], [13.410190953584765, -12.747337043500785], [13.633651085748872, -12.528287670458289], [13.875009611526732, -12.324398892047531], [14.151189359029619, -12.148397586243073], [14.479570886675374, -12.011534765393058], [14.874177879137687, -11.920588876897003], [15.342051209945566, -11.875631600088122], [15.880476226089824, -11.868962147056447], [16.475610984227608, -11.885405812744935], [17.10284775726703, -11.903933363504338], [17.728960274195792, -11.900331488599367], [18.31579089986319, -11.850479345379613], [18.824965599056632, -11.73369077749955], [19.22293606566258, -11.535580194278818], [19.485571585149863, -11.25000000000001], [19.485571585149863, -11.25000000000001], [19.601573528469366, -10.879760871048495], [19.5741570929941, -10.436053045401433], [19.420711610053115, -9.93670053699558], [19.17046951968082, -9.403564235839019], [18.860532576385403, -8.859533953098811], [18.530868860238133, -8.325594748838615], [18.21906084895168, -7.818414762460414], [17.955624256634323, -7.348790293930618], [17.76062173503185, -6.921121465293297], [17.642079688608025, -6.533908841061932], [17.59641560447486, -6.18109068556216], [17.61074733264931, -5.8539113553116575], [17.66664093141067, -5.5429443513627055], [17.744613187066477, -5.239897513654298], [17.828579780399448, -4.9388983586216755], [17.90945218253434, -4.637078444924116], [17.987234557155066, -4.334422233481714], [18.071232021820965, -4.032989845661804], [18.17831024735917, -3.735737721122581], [18.329488271805214, -3.4452262454452582], [18.545443606454974, -3.162508801932654], [18.84171034219028, -2.8864438558941834], [19.224421894018707, -2.613573046688767], [19.687376909516843, -2.3385846228618594], [20.211000561583514, -2.055257876010538], [20.763467316603126, -1.7576848191183752], [21.303895724438362, -1.4415092454850544], [21.787179882375174, -1.1049207101899288], [22.169743822900962, -0.7491914939374901], [22.415341065327294, -0.37863746280679084], [22.5, -5.5109105961630896e-15]]);
	}
	translate(v = [0, 0, -0.1000000000]) {
		difference() {
			cylinder(h = 12, r = 3.2000000000);
			translate(v = [1.6000000000, -3.2000000000, 0]) {
				cube(size = [6.4000000000, 6.4000000000, 12]);
			}
		}
	}
}
/***********************************************
*********      SolidPython code:      **********
************************************************
 
import numpy as np
from solid import *
from solid.utils import *

z = 0.1
z2 = 0.2

t = translate
r = rotate
sc = scale
cos = np.cos
sin = np.sin
pi = np.pi
save = lambda m, n: scad_render_to_file(m, n, file_header='$fn = 64;')

# Parameters
ro_gear = 45 / 2 # Outer radius of gear
d_teeth = 4 # Depth of teeth
ri_gear = ro_gear - d_teeth # Inner radius of gear
d_gear = 13 # Depth of gear
n_gear = 12 # Teeth count
r_gear_mount = 6.4 / 2 # Radius of gear mount hole
d_gear_mount = 12 # Depth of gear mount
c_gear_mount = 1.6 # Gear mount cut depth from center
gear_offset = 40 # Offset of gear from rail tangent (affects twist of gear teeth)

ro_rail = 300 # Outer radius from hinge to rail
d_rail = d_gear # Depth of rail
ri_rail = ro_rail - d_rail # Inner radius from hinge to rail
a_rail = 38 # Angle of rail
h_rail = 10 # Height of rail
n_rail = n_gear * ro_rail / ro_gear


def trail_pattern(p):
  return cos(p * pi) ** 4


def create_rail():
  points = []
  faces = []

  for i, a in enumerate(np.linspace(0, a_rail / 180 * pi, 512)):
    ri = ri_rail
    ro = ro_rail
    x = cos(a)
    y = sin(a)
    progress = a / (pi * 2) * n_rail
    z = h_rail + (1 - trail_pattern(progress)) * d_teeth
    points.append([x * ri, y * ri, 0])
    points.append([x * ro, y * ro, 0])
    points.append([x * ri, y * ri, z])
    points.append([x * ro, y * ro, z])
    p1 = 4 * i
    p2 = 4 * (i + 1)
    faces.append([p1 + 0, p1 + 1, p2 + 1, p2 + 0])
    faces.append([p1 + 1, p1 + 3, p2 + 3, p2 + 1])
    faces.append([p2 + 0, p2 + 2, p1 + 2, p1 + 0])
    faces.append([p2 + 2, p2 + 3, p1 + 3, p1 + 2])

  faces.append([2, 3, 1, 0])
  lp = len(points)
  faces.append([lp - 4, lp - 3, lp - 1, lp - 2])

  min_x = min(p[0] for p in points)
  max_x = max(p[0] for p in points)
  min_y = min(p[1] for p in points)
  max_y = max(p[1] for p in points)
  center = [-(min_x + max_x) / 2, -(min_y + max_y) / 2, 0]

  return t(center)(polyhedron(points=points, faces=faces))


def create_gear():
  points = []

  for i in range(n_gear):
    da = 2 * pi / n_gear # Delta angle
    for progress in np.linspace(0, 1, 32):
      r = ri_gear + trail_pattern(progress) * d_teeth
      a = (i + progress) * da
      x = r * cos(a)
      y = r * sin(a)
      points.append([x, y])

  cut = cube([2 * r_gear_mount, 2 * r_gear_mount, d_gear_mount])
  cut = t([c_gear_mount, -r_gear_mount, 0])(cut)
  hole = cylinder(r=r_gear_mount, h=d_gear_mount) - cut
  hole = t([0, 0, -z])(hole)

  offset_twist = np.atan2(-gear_offset, ro_rail) * 180 / pi

  return linear_extrude(height=d_gear, slices=1, twist=offset_twist)(polygon(points)) - hole


rail = create_rail()
gear = create_gear()

save(color("red")(t([10, -3.5, ro_gear + h_rail + 1])(r([-6, 90, 0])(gear))) + rail, "automatic-window-opener.assembly.scad")
save(gear, "automatic-window-opener.gear.scad")
save(rail, "automatic-window-opener.rail.scad")
 
 
************************************************/
